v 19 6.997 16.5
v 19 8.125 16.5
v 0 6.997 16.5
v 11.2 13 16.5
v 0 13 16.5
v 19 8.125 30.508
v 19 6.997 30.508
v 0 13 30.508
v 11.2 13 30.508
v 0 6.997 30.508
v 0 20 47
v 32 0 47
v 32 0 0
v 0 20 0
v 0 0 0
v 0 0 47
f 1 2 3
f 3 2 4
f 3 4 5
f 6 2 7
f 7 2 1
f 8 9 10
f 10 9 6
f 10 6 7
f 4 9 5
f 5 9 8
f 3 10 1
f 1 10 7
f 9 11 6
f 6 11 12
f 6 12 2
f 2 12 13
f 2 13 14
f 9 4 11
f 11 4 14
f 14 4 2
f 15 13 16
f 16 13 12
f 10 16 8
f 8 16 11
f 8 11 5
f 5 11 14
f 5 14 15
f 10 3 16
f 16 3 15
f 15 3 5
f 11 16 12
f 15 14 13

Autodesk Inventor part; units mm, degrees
ref_plane "YZ Plane" through (0, 0, 0) normal (1, 0, 0) x (0, 1, 0)
ref_plane "XZ Plane" through (0, 0, 0) normal (0, 1, 0) x (-1, 0, 0)
ref_plane "XY Plane" through (0, 0, 0) normal (0, 0, 1) x (1, 0, 0)
sketch "Sketch1" plane through (0, 0, 0) normal (0, 0, 1) x (1, 0, 0)
  line L0 (0, 0) -> (0, 20)
  line L1 (0, 0) -> (32, 0)
  line L2 (32, 0) -> (0, 20)
  dimension "d0" = 20
  dimension "d1" = 32
extrude "Extrusion1" add sketch "Sketch1" along normal blind 47
sketch "Sketch2" plane through (0, 0, 0) normal (-1, 0, 0) x (0, 0, 1)
  line L0 (0, 0) -> (47, 0) projected
  line L1 (0, 20) -> (0, 0) projected
  line L2 (0, 0) -> (0, 20)
  line L3 (0, 20) -> (47, 20) projected
  line L4 (0, 20) -> (47, 20)
  line L5 (23.5, 13) -> (16.5, 13)
  line L6 (16.5, 13) -> (30.5078, 13)
  line L7 (30.5078, 13) -> (30.5078, 6.9967)
  line L8 (30.5078, 6.9967) -> (16.5, 6.9967)
  line L9 (16.5, 6.9967) -> (16.5, 13)
  dimension "d5" = 7
  dimension "d6" = 15.24
extrude "Extrusion2" cut sketch "Sketch2" against normal blind 19
properties part number "mouseBottom"
